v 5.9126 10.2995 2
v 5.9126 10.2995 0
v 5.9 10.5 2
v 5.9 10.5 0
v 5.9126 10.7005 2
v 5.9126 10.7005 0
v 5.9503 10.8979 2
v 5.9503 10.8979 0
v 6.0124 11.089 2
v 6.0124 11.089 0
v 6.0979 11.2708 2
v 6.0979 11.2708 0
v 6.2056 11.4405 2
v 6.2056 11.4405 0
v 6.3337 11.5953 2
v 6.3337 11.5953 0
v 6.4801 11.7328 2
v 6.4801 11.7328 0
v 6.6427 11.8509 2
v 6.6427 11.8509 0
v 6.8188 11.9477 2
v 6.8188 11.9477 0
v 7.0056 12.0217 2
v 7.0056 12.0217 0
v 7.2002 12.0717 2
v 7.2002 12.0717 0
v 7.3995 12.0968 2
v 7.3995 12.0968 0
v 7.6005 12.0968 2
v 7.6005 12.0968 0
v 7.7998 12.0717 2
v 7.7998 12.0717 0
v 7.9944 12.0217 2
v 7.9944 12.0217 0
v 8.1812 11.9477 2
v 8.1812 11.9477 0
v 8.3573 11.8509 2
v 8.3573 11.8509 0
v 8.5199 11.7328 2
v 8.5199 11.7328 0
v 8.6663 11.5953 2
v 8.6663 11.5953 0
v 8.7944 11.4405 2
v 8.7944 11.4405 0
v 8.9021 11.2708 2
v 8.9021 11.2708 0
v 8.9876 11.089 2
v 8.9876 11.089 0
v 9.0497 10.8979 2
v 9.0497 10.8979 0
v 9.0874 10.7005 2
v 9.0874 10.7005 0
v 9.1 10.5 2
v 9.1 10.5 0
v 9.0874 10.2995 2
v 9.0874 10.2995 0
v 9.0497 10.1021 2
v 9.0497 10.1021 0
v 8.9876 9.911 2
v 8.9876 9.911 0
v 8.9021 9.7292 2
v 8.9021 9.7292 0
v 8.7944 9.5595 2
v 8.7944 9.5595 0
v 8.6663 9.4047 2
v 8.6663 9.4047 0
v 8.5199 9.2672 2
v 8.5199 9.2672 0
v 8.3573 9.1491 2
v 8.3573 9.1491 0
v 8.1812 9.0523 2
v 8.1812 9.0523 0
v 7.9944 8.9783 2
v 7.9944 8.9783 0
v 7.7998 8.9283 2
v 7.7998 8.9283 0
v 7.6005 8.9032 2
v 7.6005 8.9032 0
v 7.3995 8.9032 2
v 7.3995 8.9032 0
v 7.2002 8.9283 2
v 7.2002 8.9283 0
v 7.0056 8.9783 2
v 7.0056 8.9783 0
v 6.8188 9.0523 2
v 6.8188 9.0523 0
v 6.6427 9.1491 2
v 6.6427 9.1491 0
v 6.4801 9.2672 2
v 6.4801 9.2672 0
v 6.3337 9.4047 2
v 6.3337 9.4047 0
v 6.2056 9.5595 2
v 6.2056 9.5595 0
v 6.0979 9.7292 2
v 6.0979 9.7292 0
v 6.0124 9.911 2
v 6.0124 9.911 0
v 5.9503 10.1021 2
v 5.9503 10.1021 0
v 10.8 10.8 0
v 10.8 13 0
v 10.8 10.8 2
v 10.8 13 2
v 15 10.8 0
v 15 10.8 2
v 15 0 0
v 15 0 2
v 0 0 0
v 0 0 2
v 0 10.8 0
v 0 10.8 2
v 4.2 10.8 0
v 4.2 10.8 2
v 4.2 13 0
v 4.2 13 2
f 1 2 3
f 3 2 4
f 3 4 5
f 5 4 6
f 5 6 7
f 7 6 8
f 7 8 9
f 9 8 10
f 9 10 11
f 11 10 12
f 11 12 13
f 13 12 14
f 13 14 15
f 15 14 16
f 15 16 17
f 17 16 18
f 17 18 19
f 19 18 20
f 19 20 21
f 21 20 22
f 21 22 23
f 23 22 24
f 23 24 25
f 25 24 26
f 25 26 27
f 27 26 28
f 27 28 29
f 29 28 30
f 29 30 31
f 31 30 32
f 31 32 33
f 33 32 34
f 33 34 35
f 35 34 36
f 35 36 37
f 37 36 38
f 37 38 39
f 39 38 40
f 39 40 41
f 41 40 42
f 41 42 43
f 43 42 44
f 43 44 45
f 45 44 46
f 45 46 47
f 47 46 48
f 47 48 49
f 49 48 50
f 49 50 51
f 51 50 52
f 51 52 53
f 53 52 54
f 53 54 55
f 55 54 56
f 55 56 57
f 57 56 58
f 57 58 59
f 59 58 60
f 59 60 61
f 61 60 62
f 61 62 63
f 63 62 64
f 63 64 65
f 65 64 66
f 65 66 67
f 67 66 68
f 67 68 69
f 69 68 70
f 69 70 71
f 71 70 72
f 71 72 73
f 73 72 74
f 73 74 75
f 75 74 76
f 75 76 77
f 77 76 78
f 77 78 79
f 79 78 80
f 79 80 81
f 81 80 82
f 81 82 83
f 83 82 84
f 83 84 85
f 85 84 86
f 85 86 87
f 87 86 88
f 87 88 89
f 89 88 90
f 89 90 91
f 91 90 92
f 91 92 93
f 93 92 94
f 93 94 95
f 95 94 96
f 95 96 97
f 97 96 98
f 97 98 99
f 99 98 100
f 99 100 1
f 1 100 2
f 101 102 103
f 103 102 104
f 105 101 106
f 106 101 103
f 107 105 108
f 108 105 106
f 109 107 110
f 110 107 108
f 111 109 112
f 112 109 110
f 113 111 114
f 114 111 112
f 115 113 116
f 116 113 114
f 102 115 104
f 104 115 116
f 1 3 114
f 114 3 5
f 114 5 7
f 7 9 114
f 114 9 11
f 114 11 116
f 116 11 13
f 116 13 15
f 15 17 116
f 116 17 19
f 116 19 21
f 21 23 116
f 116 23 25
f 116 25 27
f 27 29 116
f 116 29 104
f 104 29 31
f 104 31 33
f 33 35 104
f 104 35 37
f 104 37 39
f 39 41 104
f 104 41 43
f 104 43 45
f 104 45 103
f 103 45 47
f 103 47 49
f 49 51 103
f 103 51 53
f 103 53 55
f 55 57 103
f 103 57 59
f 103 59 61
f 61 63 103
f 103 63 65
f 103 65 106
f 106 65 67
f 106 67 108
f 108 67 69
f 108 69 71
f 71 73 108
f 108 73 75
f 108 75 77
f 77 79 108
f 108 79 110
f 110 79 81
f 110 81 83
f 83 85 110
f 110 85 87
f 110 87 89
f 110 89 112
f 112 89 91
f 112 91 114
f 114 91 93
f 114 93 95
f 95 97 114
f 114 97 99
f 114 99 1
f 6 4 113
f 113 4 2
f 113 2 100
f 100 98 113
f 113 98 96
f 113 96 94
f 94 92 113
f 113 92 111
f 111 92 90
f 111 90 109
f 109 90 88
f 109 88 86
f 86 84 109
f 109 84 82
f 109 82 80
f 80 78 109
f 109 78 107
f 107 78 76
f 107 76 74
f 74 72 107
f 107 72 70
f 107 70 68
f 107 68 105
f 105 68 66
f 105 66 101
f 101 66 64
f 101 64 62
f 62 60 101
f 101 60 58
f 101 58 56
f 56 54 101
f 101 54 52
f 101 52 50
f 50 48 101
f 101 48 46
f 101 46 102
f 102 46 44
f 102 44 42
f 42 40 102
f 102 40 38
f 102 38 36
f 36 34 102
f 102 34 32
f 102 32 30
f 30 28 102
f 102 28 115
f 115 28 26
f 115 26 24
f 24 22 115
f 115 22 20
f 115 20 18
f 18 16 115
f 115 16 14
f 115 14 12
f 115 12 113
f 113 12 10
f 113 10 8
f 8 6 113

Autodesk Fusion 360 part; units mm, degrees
sketch "Esquisse1" plane through (0, 0, 0) normal (0, 0, 1) x (1, 0, 0)
  line L0 (0, 0) -> (15, 0)
  line L1 (15, 0) -> (15, 13)
  line L2 (15, 13) -> (0, 13)
  line L3 (0, 13) -> (0, 0)
  line L4 (0, 13) -> (4.2, 13)
  line L5 (4.2, 13) -> (4.2, 10.8)
  line L6 (4.2, 10.8) -> (0, 10.8)
  line L7 (0, 10.8) -> (0, 13)
  line L8 (15, 13) -> (10.8, 13)
  line L9 (10.8, 13) -> (10.8, 10.8)
  line L10 (10.8, 10.8) -> (15, 10.8)
  line L11 (15, 10.8) -> (15, 13)
  line L12 (0, 8) -> (15, 8) construction
  line L13 (7.5, 8) -> (7.5, 13) construction
  circle A0 centre (7.5, 10.5) radius 1.6
  dimension "d1" = 15
  dimension "d2" = 13
  dimension "d3" = 4.2
  dimension "d4" = 2.2
  dimension "d5" = 4.2
  dimension "d6" = 2.2
  dimension "d9" = 5
  dimension "d10" = 3.2
extrude "Extrusion1" add sketch "Esquisse1" along normal blind 2 contours L0 L1 L2 L3 L5 L6 L9 L10
